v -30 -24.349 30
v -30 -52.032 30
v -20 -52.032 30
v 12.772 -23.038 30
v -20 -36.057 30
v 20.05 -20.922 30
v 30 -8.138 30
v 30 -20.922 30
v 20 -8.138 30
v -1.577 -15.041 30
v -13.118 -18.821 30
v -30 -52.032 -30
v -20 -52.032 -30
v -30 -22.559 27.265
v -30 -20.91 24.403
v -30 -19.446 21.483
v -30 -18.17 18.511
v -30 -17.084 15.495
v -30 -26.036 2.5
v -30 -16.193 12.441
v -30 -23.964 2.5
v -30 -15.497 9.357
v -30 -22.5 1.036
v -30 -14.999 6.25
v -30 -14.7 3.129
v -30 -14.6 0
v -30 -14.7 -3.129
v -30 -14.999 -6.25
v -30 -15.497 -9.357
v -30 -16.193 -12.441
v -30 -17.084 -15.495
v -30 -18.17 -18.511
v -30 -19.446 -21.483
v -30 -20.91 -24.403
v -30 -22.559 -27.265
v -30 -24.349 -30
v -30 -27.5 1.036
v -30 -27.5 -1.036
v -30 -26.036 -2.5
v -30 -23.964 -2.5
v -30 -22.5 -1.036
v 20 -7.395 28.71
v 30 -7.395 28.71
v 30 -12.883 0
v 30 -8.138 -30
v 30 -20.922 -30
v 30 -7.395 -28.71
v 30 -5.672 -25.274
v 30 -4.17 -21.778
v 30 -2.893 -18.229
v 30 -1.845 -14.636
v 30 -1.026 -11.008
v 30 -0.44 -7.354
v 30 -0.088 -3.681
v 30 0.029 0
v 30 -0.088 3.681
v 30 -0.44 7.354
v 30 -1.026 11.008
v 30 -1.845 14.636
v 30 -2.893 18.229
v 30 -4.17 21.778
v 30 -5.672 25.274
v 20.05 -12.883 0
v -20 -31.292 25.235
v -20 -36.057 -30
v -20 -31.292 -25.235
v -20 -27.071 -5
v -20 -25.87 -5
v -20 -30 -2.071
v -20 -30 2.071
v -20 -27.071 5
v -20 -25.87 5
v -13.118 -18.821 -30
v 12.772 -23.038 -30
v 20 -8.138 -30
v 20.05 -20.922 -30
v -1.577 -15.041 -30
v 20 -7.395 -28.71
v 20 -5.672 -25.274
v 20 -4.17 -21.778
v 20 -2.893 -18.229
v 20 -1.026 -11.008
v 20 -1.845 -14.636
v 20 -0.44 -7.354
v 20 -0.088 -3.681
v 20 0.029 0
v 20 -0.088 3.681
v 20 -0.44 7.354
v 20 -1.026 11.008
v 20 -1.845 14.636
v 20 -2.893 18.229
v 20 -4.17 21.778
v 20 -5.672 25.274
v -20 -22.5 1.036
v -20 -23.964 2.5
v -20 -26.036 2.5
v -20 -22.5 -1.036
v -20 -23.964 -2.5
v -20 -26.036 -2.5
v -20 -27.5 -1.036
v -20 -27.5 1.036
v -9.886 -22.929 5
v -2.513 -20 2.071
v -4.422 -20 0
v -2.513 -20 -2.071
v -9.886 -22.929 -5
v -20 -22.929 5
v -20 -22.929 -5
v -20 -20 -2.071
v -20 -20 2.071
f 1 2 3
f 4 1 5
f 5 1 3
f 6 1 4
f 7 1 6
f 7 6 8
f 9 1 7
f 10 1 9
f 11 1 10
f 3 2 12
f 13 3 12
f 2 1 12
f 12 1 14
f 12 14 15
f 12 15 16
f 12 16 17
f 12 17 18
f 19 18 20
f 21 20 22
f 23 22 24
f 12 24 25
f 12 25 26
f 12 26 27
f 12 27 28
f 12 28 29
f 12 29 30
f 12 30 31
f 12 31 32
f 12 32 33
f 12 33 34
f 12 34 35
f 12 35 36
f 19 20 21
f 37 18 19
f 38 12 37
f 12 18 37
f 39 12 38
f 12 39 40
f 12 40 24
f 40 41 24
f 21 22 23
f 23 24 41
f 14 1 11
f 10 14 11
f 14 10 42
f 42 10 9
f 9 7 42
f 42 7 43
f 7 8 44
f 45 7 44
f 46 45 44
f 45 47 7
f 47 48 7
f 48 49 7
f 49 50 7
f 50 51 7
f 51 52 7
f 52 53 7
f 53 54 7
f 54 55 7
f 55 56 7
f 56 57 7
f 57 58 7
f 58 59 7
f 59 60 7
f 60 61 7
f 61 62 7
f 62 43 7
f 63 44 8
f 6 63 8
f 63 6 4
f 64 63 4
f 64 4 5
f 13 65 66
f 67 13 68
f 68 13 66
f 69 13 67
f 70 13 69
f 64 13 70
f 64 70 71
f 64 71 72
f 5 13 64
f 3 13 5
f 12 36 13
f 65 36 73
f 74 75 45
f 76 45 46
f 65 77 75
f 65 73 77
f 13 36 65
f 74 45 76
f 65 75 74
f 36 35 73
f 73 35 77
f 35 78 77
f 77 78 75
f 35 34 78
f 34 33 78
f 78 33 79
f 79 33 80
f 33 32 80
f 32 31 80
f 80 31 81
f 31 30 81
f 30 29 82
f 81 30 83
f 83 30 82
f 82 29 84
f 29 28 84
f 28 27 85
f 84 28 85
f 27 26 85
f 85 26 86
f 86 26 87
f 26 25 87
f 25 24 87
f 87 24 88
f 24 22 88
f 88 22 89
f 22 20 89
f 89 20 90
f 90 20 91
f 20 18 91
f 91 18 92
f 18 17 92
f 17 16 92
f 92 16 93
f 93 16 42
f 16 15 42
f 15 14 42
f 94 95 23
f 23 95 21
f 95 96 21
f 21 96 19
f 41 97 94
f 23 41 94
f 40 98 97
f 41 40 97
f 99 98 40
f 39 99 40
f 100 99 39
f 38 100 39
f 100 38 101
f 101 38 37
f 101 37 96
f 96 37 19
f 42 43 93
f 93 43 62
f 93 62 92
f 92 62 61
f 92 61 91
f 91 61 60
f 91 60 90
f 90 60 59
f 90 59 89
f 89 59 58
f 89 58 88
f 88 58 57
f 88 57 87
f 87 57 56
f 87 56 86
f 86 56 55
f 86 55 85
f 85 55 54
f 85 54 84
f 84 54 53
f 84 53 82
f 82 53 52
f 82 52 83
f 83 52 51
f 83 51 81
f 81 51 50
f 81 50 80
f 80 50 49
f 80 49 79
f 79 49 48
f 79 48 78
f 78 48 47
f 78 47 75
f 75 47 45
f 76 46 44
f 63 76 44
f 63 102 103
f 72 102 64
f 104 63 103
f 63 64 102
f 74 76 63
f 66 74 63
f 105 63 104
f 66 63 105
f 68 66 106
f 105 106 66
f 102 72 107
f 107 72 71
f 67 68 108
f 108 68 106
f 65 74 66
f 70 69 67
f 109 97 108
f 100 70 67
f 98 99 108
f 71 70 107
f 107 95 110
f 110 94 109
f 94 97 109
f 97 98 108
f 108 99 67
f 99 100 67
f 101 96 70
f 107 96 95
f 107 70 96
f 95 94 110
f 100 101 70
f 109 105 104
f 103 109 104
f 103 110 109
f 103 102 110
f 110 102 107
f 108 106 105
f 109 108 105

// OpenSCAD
left = -1;
right = 1;
top = -1;
bottom = 1;

print_layer_height = 0.2;
resolution = 128;

function accurate_diam(diam,sides) = 1 / cos(180/sides) / 2 * diam;

module hole(diam,len,sides=8) {
  cylinder(r=accurate_diam(diam,sides),h=len,center=true,$fn=sides);
}

module backback_hook() {
  hat_diam   = 150;
  elongation = 1.3;
  //elongation = 1;
  depth      = 60;
  height     = 40;
  width      = 60;

  screw_diam            = 5;
  screw_head_diam       = 10;
  screw_mount_thickness = 10;

  screw_hole_y = hat_diam*.325*elongation;
  rim_depth    = 10;

  module body() {
    scale([1,elongation,1]) {
      intersection() {
        translate([0,-hat_diam/2,0]) {
          rotate([0,90,0]) {
            hull() {
              translate([0,0,depth/2-rim_depth/2])
                hole(hat_diam,rim_depth,resolution);
              translate([0,0,-depth/2+1])
                hole(hat_diam*.85,2,resolution);
            }
          }
        }

        translate([0,-height/2,0]) {
          cube([depth+1,height+.05,width],center=true);
        }
      }
    }
  }

  module holes() {
    translate([0,-hat_diam/2,0]) {
      rotate([0,90,0]) {
        hull() {
          translate([0,0,depth/2-rim_depth/2+0.05])// rotate([0,0,22.5])
            hole(hat_diam*.8,rim_depth,12);

          translate([0,0,-depth/2+screw_mount_thickness+1])// rotate([0,0,22.5])
            hole(hat_diam*.65,2,12);
        }
      }
    }
    /*
    # translate([depth/2,-hat_diam/2,0]) {
      rotate([0,90,0])
        scale([1,elongation,1]) {
          rotate([0,0,11.25])
            sphere(r=hat_diam/3-5,$fn=16);
        }
    }
    */

    // mounting hole
    translate([depth/2,-height/2-screw_head_diam/2,0]) {
      rotate([0,90,0]) {
        rotate([0,0,22.5]) {
          hole(screw_diam,depth*2+1,8);
          hole(screw_head_diam,(depth-screw_mount_thickness)*2,8);
        }
      }
    }

    //cube([hat_diam+1,(screw_hole_y-screw_head_diam*1.5)*2,depth+1],center=true);
  }

  difference() {
    body();
    holes();
  }
}

backback_hook();
